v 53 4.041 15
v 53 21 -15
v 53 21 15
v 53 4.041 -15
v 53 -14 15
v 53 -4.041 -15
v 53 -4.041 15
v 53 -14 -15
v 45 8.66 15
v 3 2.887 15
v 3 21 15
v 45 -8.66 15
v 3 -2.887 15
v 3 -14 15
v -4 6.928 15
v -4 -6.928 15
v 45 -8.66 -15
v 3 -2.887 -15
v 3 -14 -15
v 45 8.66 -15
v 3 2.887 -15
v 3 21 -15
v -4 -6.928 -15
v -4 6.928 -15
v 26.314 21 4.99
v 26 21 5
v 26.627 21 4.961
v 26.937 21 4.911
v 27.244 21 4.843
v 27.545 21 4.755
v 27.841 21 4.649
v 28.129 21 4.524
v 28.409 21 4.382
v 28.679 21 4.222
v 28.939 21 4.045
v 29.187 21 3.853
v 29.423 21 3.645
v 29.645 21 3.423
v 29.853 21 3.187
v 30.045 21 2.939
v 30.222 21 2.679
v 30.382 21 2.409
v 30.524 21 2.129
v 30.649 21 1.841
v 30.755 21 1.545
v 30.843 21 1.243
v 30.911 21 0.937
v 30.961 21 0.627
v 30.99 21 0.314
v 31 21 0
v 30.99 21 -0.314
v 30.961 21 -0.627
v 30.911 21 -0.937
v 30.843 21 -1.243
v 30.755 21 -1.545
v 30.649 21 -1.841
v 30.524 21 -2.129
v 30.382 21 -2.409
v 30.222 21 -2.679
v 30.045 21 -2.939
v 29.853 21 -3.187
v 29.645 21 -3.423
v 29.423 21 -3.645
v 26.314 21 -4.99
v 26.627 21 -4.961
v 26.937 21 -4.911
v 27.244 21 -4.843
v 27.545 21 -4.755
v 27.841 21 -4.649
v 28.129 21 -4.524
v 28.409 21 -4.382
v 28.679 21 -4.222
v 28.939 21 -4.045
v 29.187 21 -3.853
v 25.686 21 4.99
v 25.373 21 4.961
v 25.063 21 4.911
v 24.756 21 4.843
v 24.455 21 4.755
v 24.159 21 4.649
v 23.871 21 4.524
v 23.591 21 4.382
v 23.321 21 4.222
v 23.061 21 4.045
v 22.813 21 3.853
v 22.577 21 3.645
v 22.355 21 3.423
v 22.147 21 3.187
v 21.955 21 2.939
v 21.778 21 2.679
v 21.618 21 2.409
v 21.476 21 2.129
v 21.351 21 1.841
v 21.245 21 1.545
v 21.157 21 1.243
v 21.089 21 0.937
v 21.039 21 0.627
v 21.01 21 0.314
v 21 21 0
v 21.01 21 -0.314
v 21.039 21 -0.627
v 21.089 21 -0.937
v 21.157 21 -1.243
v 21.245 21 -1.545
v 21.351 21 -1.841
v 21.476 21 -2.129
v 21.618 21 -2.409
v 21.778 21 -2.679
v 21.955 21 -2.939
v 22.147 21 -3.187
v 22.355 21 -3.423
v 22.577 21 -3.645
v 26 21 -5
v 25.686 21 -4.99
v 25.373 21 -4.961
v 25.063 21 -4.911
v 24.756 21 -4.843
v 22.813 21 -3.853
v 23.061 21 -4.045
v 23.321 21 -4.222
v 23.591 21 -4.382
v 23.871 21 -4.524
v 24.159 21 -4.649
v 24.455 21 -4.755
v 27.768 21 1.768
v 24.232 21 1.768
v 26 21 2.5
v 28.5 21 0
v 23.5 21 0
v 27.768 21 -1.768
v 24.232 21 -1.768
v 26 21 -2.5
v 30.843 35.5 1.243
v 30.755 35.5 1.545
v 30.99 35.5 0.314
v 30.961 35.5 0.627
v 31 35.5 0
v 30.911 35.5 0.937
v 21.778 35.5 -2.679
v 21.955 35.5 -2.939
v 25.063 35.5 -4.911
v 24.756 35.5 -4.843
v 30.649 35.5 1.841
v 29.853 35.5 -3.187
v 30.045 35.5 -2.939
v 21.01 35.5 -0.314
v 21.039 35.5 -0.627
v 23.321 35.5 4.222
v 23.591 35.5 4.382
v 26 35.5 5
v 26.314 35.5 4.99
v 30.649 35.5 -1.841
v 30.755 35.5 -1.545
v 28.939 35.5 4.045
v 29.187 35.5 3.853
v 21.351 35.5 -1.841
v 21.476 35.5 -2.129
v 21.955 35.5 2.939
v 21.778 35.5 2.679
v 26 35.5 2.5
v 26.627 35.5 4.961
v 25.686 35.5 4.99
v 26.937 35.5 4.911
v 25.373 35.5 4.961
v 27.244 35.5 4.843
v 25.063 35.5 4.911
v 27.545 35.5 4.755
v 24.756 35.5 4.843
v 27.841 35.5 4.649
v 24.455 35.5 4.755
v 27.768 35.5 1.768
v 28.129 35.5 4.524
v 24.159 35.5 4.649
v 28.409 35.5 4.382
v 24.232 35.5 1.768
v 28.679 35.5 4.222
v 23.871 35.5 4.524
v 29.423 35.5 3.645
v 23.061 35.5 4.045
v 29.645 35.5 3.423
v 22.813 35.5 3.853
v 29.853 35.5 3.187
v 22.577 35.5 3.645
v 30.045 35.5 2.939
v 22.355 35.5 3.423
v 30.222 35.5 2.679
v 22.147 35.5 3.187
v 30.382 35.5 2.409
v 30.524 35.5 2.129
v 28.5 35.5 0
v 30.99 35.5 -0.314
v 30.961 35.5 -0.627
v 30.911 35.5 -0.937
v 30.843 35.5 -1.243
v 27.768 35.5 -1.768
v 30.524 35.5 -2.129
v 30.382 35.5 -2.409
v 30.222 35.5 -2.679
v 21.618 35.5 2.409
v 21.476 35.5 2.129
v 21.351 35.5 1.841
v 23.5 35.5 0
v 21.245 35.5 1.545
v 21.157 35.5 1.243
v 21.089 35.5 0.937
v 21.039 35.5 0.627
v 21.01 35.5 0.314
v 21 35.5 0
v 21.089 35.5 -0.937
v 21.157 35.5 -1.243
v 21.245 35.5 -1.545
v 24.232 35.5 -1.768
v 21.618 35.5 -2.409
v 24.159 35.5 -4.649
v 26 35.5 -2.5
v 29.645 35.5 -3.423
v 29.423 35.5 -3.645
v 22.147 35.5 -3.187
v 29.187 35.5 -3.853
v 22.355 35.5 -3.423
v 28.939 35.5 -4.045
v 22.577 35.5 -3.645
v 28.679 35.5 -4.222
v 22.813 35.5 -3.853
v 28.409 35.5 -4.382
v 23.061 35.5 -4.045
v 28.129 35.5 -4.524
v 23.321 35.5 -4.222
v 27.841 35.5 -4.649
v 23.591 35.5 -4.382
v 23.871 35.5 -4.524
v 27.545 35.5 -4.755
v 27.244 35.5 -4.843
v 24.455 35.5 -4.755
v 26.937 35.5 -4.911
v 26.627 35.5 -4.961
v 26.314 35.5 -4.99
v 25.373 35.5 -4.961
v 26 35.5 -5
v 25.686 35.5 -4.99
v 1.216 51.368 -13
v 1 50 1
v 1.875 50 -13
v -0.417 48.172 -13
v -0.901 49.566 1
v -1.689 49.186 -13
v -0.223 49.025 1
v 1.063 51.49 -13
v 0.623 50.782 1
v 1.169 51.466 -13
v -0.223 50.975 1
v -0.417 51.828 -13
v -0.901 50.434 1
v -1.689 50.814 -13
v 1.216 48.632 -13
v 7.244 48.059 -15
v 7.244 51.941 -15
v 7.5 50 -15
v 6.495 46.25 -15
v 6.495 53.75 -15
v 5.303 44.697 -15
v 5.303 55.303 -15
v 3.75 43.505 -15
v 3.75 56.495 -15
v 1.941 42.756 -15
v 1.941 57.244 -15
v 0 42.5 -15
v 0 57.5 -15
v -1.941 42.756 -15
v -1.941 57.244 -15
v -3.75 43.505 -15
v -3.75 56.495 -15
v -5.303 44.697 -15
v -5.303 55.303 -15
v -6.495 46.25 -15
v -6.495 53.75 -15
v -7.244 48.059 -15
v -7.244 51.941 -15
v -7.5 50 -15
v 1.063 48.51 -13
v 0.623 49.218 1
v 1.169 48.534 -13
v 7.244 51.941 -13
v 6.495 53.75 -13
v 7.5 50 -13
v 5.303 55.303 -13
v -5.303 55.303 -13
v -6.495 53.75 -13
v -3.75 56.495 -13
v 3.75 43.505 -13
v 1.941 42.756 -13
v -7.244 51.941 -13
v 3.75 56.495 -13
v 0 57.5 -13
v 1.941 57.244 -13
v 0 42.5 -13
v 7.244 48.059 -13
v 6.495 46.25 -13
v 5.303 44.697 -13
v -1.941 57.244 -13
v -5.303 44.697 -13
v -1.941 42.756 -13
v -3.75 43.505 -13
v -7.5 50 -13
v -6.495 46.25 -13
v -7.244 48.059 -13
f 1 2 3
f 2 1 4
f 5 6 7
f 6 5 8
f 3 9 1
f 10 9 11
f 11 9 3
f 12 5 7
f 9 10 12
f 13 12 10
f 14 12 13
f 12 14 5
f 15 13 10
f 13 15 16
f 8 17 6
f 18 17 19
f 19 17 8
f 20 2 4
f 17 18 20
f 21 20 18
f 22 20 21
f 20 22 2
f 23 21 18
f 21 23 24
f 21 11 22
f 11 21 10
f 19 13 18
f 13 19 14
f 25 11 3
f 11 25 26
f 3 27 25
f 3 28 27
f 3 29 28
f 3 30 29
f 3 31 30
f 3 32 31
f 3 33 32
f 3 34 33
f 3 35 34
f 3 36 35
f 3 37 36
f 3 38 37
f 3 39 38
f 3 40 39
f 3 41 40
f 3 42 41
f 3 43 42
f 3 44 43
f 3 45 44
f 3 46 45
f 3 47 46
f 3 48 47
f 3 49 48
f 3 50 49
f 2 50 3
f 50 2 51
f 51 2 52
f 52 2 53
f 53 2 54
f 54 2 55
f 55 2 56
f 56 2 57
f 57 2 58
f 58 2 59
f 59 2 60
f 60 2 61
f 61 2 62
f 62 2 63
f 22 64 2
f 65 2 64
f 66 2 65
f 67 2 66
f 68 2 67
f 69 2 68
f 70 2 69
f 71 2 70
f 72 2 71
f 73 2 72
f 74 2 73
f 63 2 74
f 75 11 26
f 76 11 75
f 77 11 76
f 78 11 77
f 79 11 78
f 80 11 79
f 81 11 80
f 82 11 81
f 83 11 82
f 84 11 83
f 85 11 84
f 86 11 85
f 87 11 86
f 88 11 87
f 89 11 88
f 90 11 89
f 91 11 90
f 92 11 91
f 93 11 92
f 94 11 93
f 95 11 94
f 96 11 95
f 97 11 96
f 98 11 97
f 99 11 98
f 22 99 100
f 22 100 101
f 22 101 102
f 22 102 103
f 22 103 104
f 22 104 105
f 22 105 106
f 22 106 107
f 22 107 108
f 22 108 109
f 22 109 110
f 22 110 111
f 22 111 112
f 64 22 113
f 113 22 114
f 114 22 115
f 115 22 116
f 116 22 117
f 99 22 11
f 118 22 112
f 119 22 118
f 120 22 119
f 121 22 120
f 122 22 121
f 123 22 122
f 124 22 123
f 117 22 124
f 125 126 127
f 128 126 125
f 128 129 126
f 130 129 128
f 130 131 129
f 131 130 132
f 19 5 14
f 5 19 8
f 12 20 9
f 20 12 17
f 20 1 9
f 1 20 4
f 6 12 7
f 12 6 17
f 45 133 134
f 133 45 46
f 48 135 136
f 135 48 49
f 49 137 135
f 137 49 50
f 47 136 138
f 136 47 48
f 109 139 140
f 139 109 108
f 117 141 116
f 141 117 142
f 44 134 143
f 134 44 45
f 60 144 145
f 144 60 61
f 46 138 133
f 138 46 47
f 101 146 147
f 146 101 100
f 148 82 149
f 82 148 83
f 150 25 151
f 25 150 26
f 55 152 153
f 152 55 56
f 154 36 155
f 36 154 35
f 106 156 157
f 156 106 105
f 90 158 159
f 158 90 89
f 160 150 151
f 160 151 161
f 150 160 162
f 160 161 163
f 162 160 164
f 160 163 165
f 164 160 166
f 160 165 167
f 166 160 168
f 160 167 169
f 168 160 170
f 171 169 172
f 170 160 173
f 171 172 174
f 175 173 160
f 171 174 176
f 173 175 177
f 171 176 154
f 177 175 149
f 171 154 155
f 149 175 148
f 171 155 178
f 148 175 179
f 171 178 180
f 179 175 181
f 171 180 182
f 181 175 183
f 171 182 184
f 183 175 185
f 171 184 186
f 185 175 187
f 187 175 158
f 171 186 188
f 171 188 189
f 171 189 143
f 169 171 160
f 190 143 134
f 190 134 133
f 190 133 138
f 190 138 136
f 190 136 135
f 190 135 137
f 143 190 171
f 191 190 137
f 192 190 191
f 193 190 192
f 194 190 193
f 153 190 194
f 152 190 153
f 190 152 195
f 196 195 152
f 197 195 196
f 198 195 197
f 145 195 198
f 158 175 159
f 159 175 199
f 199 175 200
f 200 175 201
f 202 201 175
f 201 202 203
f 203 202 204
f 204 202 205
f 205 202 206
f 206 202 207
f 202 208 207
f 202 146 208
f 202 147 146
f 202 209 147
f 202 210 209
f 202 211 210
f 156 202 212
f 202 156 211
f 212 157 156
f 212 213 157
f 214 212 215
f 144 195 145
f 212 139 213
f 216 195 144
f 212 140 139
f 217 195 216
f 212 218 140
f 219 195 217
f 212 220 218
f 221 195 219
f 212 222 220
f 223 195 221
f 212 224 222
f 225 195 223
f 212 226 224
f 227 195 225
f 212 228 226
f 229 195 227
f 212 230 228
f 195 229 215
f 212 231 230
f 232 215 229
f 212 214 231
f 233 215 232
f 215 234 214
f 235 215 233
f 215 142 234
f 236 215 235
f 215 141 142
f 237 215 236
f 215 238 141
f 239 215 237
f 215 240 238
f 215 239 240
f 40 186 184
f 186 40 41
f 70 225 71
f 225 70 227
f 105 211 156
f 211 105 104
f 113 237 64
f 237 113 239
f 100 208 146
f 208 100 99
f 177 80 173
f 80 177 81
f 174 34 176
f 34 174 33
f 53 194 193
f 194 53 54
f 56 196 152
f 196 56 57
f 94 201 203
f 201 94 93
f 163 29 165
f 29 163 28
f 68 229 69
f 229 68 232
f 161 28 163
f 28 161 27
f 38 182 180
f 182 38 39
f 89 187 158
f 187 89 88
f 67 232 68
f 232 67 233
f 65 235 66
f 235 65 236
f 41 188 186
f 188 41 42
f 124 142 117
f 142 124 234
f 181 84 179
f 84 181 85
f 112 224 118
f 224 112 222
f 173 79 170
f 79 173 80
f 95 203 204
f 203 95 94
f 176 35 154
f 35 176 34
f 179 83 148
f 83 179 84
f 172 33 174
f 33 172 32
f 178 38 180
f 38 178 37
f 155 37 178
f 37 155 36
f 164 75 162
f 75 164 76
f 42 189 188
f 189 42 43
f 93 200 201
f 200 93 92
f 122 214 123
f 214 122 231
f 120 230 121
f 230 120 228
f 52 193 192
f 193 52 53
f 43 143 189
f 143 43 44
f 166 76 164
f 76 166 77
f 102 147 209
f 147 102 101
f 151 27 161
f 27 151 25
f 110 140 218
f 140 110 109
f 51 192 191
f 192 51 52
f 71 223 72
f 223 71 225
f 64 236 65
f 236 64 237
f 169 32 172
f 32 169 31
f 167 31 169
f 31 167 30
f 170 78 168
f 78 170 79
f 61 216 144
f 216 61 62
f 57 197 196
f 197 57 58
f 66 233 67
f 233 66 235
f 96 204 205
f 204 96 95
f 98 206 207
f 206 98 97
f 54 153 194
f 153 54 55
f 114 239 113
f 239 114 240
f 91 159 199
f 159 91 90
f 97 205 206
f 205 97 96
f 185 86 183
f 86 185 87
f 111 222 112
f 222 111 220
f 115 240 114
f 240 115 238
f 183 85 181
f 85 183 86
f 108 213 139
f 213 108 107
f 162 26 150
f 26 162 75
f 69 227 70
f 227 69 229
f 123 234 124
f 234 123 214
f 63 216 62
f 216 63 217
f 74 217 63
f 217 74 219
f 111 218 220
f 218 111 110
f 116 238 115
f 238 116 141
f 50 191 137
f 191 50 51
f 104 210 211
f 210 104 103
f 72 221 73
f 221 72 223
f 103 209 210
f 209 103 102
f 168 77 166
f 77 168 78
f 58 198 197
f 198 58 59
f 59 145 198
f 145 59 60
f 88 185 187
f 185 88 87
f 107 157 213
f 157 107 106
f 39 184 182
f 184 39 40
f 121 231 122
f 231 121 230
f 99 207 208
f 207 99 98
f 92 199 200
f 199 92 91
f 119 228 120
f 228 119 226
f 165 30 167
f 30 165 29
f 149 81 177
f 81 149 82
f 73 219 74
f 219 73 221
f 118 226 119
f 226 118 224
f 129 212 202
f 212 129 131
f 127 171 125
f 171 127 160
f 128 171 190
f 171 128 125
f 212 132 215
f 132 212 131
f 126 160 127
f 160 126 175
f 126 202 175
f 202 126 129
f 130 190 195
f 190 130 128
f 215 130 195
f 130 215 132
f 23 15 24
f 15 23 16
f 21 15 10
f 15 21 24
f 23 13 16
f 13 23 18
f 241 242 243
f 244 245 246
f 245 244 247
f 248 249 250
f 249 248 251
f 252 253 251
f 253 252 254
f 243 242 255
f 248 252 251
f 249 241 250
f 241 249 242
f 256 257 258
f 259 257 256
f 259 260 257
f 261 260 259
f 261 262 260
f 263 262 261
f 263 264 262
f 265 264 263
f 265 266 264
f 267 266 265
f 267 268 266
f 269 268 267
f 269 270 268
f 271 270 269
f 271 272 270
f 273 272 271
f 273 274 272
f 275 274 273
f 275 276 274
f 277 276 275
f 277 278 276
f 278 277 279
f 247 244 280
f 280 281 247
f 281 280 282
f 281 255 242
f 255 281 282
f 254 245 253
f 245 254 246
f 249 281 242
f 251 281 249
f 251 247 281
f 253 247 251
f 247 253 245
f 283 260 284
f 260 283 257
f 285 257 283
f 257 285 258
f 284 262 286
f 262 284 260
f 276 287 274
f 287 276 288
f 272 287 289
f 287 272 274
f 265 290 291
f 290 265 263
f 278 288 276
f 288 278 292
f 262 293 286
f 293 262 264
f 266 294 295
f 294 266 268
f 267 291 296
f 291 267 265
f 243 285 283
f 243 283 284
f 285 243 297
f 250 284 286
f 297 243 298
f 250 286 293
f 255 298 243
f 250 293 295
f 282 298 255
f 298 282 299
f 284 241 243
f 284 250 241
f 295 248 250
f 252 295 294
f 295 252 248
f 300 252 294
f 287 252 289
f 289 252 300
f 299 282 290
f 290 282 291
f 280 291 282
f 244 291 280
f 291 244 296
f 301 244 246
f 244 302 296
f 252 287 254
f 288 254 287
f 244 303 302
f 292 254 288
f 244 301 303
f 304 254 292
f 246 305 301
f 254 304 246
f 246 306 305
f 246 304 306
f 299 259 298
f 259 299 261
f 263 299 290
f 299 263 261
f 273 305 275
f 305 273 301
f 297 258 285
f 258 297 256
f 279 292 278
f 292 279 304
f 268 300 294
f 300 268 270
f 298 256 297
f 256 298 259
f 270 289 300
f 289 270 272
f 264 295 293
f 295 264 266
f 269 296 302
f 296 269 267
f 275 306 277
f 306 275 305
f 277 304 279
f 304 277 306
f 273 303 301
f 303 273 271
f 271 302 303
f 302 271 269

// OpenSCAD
use <MCAD/gears.scad>

block_depth = 35;
block_width = 50;
block_height = 30;
dovetail_radius_female = 10;
dovetail_radius_male = 8;
pin_height = block_height / 2;
pin_diameter = 10;
holder_diameter = pin_diameter / 2;
holder_height = pin_height + 5;
module dovetail() {
    
    cylinder(block_height, r=dovetail_radius_male, $fn=3,
    center=true);
    
    difference() {
        translate([28, 3.5, 0]) {
            cube([block_width, block_depth, 
               block_height], center=true);
        }
        translate([50,0,0]) {
            cylinder(block_height + 2, 
                    r=dovetail_radius_female, $fn=3,
                    center=true);
        }
    }
    
    translate([26, 28, 0]) {
        rotate([90, 0, 0]) {
            difference() {
                cylinder(pin_height, d=pin_diameter, $fn=100,
                        center=true);
                cylinder(holder_height, d=holder_diameter, 
                        center=true);
            }
        }
    }
}

module holder() {
    cylinder(holder_height - 4, d1=holder_diameter - 1, d2=2);
    cylinder(2, d=pin_diameter + 5);
    
}
    
dovetail();
translate([0, 50, -15]) { holder(); } 
